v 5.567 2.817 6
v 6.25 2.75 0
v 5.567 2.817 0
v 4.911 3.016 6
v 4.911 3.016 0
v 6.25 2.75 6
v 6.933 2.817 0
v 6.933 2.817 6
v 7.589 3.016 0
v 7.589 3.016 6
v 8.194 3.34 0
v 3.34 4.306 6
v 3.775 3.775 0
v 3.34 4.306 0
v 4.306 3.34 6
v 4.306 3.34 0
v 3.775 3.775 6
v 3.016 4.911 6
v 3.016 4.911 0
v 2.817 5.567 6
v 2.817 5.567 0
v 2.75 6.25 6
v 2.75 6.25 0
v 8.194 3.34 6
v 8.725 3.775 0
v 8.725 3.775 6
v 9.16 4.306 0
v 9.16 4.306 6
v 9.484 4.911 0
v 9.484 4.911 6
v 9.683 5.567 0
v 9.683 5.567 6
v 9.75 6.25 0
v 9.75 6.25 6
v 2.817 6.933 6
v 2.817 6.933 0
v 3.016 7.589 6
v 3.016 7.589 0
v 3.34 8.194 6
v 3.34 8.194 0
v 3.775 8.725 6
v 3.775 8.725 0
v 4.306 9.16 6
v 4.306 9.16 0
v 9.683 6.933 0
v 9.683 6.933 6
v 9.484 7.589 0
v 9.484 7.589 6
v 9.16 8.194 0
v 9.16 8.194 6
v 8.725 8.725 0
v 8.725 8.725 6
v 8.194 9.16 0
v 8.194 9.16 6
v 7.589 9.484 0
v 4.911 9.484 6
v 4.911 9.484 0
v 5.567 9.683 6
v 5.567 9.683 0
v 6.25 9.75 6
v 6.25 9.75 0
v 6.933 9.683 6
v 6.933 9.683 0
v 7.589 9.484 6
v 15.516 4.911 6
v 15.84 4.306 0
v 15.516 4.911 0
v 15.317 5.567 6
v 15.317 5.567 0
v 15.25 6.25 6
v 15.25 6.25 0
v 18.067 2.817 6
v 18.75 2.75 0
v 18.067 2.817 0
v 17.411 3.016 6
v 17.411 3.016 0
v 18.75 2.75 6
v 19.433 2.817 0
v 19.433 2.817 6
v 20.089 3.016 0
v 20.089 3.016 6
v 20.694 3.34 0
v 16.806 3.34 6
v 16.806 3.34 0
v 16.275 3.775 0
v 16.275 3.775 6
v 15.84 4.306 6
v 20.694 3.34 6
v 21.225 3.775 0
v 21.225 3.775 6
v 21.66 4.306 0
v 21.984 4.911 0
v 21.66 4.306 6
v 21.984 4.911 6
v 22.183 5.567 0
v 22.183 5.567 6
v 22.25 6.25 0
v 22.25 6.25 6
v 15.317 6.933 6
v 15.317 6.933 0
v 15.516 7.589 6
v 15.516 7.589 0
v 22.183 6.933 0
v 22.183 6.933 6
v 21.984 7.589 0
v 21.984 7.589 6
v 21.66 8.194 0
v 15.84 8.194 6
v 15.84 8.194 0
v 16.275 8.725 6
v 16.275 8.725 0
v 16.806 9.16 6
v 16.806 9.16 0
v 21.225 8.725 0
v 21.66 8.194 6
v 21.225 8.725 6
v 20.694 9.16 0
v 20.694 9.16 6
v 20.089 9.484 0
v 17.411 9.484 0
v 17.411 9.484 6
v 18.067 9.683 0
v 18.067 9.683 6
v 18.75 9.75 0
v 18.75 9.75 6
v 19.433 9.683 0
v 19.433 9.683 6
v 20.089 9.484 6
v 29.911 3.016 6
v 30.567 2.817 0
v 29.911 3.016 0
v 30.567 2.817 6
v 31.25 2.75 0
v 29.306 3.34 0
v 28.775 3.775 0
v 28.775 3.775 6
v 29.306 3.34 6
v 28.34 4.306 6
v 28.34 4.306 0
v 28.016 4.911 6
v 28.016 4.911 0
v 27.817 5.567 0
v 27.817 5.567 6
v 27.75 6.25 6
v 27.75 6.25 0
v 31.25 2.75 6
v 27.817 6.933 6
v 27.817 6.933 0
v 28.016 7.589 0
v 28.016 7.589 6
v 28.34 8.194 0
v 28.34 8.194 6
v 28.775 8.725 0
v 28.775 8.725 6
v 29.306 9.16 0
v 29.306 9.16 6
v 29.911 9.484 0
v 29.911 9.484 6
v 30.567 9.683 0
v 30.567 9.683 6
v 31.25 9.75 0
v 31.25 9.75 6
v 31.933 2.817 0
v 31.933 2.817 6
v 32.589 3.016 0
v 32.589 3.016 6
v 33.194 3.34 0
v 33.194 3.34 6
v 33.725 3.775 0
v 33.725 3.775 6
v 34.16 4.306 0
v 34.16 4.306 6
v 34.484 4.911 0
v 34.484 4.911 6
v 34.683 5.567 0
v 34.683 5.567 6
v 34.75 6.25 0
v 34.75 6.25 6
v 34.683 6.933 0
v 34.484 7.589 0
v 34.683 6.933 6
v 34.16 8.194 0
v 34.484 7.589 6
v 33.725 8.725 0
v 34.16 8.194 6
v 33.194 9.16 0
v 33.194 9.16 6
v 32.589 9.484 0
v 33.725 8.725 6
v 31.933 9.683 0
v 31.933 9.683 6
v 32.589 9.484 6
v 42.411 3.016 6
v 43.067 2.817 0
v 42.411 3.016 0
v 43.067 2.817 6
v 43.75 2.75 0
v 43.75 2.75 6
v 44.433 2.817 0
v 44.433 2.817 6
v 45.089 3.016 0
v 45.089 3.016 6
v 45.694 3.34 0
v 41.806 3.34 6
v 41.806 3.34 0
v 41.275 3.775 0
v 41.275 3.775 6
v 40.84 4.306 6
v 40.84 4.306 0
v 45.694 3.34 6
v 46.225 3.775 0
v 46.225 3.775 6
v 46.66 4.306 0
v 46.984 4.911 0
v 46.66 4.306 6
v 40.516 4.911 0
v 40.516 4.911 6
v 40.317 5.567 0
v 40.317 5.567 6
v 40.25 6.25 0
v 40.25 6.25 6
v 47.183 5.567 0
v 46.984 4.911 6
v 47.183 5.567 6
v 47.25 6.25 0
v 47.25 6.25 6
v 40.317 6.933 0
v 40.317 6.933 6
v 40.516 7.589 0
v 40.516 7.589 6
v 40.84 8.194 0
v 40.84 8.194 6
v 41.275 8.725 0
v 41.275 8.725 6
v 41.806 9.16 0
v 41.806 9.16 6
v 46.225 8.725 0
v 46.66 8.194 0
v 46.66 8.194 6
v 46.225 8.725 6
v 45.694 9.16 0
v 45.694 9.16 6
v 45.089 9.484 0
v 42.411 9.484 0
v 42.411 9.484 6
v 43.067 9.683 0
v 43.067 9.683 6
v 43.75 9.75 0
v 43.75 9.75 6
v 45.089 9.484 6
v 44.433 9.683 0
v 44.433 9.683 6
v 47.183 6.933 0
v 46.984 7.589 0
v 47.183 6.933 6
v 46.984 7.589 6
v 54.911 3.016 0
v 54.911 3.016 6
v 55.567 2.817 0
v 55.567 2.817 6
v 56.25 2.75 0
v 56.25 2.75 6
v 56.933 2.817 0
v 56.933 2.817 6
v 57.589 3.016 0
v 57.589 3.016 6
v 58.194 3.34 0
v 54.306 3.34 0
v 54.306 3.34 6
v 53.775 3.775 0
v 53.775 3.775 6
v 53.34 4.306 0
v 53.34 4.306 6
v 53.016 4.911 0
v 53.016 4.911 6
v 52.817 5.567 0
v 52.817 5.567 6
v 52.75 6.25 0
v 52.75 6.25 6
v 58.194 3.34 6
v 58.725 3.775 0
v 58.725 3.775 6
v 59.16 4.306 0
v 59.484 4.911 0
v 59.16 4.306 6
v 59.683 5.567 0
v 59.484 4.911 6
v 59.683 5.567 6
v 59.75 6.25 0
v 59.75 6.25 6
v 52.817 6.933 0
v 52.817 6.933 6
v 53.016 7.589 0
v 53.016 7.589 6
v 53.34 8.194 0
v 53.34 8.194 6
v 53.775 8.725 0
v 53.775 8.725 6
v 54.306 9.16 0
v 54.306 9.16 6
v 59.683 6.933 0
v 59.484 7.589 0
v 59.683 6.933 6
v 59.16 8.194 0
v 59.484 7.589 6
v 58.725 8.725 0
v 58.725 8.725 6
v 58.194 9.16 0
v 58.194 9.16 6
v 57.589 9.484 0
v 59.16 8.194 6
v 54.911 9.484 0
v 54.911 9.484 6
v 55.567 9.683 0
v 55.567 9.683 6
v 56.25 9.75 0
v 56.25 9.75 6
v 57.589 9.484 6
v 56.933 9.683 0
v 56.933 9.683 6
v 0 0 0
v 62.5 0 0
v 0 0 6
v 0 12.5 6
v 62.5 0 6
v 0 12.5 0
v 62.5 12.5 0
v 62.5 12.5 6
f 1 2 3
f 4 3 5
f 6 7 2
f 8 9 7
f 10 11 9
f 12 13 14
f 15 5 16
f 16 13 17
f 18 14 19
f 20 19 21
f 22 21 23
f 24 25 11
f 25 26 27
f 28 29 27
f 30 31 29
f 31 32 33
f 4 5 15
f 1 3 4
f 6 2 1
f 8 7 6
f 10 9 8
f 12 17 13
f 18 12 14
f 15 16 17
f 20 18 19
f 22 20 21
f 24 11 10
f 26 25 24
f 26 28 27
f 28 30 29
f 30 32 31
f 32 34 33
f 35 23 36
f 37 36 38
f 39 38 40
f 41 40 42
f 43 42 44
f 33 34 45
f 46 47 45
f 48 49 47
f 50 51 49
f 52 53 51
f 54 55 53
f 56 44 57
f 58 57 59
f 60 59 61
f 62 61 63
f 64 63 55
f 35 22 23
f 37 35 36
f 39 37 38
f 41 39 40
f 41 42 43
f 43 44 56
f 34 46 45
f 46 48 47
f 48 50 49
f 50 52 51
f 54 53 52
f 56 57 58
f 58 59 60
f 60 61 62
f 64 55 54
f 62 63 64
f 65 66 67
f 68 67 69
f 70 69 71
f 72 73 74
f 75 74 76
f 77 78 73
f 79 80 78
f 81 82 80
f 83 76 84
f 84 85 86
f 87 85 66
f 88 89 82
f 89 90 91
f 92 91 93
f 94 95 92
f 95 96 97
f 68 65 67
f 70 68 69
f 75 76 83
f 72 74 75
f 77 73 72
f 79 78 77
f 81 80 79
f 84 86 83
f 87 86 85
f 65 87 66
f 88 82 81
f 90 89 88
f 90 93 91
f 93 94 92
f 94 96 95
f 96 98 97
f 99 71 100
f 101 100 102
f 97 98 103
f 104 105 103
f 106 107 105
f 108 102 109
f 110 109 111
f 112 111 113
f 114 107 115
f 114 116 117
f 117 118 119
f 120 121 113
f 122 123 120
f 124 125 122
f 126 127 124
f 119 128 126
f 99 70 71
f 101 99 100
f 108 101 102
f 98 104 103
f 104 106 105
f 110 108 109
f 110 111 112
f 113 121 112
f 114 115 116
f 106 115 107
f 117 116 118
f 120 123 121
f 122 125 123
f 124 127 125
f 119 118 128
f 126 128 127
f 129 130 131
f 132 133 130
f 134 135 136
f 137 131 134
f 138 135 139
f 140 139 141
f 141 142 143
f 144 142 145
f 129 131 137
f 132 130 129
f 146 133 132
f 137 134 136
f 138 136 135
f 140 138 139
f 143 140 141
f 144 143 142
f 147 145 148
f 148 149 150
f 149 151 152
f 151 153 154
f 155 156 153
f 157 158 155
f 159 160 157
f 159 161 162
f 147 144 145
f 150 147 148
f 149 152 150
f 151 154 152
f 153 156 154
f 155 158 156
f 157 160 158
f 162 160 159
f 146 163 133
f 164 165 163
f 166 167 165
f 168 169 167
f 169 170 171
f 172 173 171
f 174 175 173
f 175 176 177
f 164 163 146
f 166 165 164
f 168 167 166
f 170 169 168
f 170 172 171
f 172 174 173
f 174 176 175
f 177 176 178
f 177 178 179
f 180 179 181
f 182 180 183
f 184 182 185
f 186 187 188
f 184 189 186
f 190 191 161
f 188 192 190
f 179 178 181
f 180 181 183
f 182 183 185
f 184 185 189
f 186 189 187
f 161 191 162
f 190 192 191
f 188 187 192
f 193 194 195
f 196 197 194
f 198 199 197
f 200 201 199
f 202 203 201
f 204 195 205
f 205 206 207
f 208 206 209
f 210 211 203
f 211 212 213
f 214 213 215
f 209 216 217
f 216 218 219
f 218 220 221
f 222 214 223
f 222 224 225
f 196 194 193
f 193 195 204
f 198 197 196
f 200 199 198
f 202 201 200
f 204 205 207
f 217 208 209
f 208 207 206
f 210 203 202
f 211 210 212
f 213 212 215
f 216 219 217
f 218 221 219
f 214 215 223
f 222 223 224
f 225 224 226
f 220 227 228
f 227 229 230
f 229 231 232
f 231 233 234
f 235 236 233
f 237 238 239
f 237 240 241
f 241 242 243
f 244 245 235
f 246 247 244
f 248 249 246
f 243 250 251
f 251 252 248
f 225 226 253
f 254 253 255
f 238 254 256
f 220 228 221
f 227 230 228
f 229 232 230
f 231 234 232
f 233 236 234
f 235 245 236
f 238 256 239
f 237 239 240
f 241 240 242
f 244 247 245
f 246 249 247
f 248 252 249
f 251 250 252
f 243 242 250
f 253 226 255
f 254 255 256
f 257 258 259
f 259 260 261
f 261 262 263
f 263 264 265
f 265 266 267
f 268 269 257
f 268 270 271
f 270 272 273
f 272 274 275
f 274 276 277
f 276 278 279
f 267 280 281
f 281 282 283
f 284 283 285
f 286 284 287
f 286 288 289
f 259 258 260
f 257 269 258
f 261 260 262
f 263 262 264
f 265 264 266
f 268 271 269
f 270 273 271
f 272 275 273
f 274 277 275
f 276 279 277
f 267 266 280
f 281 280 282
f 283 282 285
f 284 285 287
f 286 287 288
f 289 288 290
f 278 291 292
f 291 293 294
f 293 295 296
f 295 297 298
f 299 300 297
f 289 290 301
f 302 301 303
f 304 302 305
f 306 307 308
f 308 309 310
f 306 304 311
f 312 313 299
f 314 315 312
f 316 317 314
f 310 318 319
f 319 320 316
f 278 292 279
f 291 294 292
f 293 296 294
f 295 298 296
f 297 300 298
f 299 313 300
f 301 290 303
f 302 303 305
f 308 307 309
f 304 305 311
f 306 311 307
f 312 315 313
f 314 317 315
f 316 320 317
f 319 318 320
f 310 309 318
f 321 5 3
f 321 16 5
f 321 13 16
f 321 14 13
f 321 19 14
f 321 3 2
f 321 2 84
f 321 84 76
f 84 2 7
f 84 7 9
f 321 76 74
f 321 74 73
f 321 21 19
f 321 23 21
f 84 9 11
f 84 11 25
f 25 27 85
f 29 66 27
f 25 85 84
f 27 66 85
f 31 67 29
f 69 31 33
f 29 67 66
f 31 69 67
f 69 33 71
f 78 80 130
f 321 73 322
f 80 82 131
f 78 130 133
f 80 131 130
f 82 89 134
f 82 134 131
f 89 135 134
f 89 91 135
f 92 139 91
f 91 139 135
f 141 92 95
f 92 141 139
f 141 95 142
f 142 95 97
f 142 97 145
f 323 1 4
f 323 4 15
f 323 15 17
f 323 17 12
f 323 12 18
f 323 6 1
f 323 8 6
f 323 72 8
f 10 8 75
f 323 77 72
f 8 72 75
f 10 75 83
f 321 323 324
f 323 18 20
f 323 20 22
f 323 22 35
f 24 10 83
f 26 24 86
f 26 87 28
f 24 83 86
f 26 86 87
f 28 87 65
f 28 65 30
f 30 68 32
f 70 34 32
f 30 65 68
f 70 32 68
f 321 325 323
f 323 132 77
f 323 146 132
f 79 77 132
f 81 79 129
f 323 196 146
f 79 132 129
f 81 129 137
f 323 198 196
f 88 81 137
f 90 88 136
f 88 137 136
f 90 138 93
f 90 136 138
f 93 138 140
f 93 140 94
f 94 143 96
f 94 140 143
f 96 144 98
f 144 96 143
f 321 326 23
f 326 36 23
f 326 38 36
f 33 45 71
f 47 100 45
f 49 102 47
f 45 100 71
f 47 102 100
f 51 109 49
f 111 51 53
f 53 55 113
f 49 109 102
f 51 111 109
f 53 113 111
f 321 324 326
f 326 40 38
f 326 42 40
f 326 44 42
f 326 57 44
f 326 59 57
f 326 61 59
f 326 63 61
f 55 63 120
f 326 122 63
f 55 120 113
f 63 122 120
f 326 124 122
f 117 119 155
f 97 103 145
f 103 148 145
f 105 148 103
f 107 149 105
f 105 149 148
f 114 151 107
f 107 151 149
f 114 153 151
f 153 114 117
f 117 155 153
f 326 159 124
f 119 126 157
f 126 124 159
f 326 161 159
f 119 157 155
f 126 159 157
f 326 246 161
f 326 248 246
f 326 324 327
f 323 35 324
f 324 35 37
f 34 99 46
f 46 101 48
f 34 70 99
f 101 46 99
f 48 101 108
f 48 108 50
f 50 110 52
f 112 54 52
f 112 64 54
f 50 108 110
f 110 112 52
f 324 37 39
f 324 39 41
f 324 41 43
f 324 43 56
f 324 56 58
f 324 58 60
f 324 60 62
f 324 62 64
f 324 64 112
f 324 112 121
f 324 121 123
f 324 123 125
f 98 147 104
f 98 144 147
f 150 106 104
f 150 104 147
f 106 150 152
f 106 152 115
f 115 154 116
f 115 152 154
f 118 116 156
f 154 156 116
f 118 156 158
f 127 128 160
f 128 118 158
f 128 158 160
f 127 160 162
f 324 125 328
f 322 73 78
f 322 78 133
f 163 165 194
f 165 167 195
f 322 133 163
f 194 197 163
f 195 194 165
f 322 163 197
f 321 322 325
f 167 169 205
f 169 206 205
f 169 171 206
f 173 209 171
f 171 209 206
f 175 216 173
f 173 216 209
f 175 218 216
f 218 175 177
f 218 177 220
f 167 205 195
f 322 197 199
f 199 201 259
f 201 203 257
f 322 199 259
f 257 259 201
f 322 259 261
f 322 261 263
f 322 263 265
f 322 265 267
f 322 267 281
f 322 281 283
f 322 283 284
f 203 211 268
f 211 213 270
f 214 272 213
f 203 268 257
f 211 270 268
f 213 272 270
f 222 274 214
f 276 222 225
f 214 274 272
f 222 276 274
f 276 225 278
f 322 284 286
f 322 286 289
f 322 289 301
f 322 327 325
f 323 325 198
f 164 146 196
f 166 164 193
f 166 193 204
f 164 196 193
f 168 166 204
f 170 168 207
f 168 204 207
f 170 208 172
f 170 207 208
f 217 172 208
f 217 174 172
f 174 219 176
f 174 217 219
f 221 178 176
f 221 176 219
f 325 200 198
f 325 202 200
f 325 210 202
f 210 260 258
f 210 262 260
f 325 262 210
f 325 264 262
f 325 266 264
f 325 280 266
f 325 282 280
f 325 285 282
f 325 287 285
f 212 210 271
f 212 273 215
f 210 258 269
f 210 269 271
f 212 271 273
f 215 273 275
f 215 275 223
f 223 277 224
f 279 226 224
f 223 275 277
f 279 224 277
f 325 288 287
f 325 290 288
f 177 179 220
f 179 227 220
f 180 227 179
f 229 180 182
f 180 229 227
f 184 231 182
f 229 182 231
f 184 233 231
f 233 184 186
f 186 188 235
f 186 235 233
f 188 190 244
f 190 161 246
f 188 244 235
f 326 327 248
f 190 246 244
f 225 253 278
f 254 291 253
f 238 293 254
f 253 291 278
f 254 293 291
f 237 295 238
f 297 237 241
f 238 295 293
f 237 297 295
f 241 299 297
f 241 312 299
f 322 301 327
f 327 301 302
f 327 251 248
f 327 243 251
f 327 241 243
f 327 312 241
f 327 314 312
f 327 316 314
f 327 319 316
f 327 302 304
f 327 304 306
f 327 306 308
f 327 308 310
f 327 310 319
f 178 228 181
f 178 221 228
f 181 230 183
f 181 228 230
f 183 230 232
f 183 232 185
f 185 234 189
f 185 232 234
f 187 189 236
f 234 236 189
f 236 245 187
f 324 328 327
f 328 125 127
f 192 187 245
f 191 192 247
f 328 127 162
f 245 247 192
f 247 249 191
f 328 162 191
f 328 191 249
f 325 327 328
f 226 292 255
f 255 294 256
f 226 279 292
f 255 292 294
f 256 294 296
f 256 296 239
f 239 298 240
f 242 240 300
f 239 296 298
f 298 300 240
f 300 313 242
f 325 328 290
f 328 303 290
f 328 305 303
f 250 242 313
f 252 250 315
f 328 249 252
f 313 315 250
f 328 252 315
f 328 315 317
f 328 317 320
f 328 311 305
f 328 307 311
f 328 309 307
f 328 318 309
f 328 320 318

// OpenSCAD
// pro-beam-su05 — STEMFIE grid: 5 units at 12.5 mm pitch, 7.0 mm free holes.
// Simplified blockout of the rounded SU05 teaser beam (docs/pro.md):
// correct pitch and hole pattern first, fillets come with the print tests.
pitch = 12.5;
units = 5;
thickness = 6;
difference() {
  cube([units * pitch, pitch, thickness]);
  for (i = [0 : units - 1])
    translate([(i + 0.5) * pitch, pitch / 2, -1])
      cylinder(d = 7.0, h = thickness + 2, $fn = 32);
}
